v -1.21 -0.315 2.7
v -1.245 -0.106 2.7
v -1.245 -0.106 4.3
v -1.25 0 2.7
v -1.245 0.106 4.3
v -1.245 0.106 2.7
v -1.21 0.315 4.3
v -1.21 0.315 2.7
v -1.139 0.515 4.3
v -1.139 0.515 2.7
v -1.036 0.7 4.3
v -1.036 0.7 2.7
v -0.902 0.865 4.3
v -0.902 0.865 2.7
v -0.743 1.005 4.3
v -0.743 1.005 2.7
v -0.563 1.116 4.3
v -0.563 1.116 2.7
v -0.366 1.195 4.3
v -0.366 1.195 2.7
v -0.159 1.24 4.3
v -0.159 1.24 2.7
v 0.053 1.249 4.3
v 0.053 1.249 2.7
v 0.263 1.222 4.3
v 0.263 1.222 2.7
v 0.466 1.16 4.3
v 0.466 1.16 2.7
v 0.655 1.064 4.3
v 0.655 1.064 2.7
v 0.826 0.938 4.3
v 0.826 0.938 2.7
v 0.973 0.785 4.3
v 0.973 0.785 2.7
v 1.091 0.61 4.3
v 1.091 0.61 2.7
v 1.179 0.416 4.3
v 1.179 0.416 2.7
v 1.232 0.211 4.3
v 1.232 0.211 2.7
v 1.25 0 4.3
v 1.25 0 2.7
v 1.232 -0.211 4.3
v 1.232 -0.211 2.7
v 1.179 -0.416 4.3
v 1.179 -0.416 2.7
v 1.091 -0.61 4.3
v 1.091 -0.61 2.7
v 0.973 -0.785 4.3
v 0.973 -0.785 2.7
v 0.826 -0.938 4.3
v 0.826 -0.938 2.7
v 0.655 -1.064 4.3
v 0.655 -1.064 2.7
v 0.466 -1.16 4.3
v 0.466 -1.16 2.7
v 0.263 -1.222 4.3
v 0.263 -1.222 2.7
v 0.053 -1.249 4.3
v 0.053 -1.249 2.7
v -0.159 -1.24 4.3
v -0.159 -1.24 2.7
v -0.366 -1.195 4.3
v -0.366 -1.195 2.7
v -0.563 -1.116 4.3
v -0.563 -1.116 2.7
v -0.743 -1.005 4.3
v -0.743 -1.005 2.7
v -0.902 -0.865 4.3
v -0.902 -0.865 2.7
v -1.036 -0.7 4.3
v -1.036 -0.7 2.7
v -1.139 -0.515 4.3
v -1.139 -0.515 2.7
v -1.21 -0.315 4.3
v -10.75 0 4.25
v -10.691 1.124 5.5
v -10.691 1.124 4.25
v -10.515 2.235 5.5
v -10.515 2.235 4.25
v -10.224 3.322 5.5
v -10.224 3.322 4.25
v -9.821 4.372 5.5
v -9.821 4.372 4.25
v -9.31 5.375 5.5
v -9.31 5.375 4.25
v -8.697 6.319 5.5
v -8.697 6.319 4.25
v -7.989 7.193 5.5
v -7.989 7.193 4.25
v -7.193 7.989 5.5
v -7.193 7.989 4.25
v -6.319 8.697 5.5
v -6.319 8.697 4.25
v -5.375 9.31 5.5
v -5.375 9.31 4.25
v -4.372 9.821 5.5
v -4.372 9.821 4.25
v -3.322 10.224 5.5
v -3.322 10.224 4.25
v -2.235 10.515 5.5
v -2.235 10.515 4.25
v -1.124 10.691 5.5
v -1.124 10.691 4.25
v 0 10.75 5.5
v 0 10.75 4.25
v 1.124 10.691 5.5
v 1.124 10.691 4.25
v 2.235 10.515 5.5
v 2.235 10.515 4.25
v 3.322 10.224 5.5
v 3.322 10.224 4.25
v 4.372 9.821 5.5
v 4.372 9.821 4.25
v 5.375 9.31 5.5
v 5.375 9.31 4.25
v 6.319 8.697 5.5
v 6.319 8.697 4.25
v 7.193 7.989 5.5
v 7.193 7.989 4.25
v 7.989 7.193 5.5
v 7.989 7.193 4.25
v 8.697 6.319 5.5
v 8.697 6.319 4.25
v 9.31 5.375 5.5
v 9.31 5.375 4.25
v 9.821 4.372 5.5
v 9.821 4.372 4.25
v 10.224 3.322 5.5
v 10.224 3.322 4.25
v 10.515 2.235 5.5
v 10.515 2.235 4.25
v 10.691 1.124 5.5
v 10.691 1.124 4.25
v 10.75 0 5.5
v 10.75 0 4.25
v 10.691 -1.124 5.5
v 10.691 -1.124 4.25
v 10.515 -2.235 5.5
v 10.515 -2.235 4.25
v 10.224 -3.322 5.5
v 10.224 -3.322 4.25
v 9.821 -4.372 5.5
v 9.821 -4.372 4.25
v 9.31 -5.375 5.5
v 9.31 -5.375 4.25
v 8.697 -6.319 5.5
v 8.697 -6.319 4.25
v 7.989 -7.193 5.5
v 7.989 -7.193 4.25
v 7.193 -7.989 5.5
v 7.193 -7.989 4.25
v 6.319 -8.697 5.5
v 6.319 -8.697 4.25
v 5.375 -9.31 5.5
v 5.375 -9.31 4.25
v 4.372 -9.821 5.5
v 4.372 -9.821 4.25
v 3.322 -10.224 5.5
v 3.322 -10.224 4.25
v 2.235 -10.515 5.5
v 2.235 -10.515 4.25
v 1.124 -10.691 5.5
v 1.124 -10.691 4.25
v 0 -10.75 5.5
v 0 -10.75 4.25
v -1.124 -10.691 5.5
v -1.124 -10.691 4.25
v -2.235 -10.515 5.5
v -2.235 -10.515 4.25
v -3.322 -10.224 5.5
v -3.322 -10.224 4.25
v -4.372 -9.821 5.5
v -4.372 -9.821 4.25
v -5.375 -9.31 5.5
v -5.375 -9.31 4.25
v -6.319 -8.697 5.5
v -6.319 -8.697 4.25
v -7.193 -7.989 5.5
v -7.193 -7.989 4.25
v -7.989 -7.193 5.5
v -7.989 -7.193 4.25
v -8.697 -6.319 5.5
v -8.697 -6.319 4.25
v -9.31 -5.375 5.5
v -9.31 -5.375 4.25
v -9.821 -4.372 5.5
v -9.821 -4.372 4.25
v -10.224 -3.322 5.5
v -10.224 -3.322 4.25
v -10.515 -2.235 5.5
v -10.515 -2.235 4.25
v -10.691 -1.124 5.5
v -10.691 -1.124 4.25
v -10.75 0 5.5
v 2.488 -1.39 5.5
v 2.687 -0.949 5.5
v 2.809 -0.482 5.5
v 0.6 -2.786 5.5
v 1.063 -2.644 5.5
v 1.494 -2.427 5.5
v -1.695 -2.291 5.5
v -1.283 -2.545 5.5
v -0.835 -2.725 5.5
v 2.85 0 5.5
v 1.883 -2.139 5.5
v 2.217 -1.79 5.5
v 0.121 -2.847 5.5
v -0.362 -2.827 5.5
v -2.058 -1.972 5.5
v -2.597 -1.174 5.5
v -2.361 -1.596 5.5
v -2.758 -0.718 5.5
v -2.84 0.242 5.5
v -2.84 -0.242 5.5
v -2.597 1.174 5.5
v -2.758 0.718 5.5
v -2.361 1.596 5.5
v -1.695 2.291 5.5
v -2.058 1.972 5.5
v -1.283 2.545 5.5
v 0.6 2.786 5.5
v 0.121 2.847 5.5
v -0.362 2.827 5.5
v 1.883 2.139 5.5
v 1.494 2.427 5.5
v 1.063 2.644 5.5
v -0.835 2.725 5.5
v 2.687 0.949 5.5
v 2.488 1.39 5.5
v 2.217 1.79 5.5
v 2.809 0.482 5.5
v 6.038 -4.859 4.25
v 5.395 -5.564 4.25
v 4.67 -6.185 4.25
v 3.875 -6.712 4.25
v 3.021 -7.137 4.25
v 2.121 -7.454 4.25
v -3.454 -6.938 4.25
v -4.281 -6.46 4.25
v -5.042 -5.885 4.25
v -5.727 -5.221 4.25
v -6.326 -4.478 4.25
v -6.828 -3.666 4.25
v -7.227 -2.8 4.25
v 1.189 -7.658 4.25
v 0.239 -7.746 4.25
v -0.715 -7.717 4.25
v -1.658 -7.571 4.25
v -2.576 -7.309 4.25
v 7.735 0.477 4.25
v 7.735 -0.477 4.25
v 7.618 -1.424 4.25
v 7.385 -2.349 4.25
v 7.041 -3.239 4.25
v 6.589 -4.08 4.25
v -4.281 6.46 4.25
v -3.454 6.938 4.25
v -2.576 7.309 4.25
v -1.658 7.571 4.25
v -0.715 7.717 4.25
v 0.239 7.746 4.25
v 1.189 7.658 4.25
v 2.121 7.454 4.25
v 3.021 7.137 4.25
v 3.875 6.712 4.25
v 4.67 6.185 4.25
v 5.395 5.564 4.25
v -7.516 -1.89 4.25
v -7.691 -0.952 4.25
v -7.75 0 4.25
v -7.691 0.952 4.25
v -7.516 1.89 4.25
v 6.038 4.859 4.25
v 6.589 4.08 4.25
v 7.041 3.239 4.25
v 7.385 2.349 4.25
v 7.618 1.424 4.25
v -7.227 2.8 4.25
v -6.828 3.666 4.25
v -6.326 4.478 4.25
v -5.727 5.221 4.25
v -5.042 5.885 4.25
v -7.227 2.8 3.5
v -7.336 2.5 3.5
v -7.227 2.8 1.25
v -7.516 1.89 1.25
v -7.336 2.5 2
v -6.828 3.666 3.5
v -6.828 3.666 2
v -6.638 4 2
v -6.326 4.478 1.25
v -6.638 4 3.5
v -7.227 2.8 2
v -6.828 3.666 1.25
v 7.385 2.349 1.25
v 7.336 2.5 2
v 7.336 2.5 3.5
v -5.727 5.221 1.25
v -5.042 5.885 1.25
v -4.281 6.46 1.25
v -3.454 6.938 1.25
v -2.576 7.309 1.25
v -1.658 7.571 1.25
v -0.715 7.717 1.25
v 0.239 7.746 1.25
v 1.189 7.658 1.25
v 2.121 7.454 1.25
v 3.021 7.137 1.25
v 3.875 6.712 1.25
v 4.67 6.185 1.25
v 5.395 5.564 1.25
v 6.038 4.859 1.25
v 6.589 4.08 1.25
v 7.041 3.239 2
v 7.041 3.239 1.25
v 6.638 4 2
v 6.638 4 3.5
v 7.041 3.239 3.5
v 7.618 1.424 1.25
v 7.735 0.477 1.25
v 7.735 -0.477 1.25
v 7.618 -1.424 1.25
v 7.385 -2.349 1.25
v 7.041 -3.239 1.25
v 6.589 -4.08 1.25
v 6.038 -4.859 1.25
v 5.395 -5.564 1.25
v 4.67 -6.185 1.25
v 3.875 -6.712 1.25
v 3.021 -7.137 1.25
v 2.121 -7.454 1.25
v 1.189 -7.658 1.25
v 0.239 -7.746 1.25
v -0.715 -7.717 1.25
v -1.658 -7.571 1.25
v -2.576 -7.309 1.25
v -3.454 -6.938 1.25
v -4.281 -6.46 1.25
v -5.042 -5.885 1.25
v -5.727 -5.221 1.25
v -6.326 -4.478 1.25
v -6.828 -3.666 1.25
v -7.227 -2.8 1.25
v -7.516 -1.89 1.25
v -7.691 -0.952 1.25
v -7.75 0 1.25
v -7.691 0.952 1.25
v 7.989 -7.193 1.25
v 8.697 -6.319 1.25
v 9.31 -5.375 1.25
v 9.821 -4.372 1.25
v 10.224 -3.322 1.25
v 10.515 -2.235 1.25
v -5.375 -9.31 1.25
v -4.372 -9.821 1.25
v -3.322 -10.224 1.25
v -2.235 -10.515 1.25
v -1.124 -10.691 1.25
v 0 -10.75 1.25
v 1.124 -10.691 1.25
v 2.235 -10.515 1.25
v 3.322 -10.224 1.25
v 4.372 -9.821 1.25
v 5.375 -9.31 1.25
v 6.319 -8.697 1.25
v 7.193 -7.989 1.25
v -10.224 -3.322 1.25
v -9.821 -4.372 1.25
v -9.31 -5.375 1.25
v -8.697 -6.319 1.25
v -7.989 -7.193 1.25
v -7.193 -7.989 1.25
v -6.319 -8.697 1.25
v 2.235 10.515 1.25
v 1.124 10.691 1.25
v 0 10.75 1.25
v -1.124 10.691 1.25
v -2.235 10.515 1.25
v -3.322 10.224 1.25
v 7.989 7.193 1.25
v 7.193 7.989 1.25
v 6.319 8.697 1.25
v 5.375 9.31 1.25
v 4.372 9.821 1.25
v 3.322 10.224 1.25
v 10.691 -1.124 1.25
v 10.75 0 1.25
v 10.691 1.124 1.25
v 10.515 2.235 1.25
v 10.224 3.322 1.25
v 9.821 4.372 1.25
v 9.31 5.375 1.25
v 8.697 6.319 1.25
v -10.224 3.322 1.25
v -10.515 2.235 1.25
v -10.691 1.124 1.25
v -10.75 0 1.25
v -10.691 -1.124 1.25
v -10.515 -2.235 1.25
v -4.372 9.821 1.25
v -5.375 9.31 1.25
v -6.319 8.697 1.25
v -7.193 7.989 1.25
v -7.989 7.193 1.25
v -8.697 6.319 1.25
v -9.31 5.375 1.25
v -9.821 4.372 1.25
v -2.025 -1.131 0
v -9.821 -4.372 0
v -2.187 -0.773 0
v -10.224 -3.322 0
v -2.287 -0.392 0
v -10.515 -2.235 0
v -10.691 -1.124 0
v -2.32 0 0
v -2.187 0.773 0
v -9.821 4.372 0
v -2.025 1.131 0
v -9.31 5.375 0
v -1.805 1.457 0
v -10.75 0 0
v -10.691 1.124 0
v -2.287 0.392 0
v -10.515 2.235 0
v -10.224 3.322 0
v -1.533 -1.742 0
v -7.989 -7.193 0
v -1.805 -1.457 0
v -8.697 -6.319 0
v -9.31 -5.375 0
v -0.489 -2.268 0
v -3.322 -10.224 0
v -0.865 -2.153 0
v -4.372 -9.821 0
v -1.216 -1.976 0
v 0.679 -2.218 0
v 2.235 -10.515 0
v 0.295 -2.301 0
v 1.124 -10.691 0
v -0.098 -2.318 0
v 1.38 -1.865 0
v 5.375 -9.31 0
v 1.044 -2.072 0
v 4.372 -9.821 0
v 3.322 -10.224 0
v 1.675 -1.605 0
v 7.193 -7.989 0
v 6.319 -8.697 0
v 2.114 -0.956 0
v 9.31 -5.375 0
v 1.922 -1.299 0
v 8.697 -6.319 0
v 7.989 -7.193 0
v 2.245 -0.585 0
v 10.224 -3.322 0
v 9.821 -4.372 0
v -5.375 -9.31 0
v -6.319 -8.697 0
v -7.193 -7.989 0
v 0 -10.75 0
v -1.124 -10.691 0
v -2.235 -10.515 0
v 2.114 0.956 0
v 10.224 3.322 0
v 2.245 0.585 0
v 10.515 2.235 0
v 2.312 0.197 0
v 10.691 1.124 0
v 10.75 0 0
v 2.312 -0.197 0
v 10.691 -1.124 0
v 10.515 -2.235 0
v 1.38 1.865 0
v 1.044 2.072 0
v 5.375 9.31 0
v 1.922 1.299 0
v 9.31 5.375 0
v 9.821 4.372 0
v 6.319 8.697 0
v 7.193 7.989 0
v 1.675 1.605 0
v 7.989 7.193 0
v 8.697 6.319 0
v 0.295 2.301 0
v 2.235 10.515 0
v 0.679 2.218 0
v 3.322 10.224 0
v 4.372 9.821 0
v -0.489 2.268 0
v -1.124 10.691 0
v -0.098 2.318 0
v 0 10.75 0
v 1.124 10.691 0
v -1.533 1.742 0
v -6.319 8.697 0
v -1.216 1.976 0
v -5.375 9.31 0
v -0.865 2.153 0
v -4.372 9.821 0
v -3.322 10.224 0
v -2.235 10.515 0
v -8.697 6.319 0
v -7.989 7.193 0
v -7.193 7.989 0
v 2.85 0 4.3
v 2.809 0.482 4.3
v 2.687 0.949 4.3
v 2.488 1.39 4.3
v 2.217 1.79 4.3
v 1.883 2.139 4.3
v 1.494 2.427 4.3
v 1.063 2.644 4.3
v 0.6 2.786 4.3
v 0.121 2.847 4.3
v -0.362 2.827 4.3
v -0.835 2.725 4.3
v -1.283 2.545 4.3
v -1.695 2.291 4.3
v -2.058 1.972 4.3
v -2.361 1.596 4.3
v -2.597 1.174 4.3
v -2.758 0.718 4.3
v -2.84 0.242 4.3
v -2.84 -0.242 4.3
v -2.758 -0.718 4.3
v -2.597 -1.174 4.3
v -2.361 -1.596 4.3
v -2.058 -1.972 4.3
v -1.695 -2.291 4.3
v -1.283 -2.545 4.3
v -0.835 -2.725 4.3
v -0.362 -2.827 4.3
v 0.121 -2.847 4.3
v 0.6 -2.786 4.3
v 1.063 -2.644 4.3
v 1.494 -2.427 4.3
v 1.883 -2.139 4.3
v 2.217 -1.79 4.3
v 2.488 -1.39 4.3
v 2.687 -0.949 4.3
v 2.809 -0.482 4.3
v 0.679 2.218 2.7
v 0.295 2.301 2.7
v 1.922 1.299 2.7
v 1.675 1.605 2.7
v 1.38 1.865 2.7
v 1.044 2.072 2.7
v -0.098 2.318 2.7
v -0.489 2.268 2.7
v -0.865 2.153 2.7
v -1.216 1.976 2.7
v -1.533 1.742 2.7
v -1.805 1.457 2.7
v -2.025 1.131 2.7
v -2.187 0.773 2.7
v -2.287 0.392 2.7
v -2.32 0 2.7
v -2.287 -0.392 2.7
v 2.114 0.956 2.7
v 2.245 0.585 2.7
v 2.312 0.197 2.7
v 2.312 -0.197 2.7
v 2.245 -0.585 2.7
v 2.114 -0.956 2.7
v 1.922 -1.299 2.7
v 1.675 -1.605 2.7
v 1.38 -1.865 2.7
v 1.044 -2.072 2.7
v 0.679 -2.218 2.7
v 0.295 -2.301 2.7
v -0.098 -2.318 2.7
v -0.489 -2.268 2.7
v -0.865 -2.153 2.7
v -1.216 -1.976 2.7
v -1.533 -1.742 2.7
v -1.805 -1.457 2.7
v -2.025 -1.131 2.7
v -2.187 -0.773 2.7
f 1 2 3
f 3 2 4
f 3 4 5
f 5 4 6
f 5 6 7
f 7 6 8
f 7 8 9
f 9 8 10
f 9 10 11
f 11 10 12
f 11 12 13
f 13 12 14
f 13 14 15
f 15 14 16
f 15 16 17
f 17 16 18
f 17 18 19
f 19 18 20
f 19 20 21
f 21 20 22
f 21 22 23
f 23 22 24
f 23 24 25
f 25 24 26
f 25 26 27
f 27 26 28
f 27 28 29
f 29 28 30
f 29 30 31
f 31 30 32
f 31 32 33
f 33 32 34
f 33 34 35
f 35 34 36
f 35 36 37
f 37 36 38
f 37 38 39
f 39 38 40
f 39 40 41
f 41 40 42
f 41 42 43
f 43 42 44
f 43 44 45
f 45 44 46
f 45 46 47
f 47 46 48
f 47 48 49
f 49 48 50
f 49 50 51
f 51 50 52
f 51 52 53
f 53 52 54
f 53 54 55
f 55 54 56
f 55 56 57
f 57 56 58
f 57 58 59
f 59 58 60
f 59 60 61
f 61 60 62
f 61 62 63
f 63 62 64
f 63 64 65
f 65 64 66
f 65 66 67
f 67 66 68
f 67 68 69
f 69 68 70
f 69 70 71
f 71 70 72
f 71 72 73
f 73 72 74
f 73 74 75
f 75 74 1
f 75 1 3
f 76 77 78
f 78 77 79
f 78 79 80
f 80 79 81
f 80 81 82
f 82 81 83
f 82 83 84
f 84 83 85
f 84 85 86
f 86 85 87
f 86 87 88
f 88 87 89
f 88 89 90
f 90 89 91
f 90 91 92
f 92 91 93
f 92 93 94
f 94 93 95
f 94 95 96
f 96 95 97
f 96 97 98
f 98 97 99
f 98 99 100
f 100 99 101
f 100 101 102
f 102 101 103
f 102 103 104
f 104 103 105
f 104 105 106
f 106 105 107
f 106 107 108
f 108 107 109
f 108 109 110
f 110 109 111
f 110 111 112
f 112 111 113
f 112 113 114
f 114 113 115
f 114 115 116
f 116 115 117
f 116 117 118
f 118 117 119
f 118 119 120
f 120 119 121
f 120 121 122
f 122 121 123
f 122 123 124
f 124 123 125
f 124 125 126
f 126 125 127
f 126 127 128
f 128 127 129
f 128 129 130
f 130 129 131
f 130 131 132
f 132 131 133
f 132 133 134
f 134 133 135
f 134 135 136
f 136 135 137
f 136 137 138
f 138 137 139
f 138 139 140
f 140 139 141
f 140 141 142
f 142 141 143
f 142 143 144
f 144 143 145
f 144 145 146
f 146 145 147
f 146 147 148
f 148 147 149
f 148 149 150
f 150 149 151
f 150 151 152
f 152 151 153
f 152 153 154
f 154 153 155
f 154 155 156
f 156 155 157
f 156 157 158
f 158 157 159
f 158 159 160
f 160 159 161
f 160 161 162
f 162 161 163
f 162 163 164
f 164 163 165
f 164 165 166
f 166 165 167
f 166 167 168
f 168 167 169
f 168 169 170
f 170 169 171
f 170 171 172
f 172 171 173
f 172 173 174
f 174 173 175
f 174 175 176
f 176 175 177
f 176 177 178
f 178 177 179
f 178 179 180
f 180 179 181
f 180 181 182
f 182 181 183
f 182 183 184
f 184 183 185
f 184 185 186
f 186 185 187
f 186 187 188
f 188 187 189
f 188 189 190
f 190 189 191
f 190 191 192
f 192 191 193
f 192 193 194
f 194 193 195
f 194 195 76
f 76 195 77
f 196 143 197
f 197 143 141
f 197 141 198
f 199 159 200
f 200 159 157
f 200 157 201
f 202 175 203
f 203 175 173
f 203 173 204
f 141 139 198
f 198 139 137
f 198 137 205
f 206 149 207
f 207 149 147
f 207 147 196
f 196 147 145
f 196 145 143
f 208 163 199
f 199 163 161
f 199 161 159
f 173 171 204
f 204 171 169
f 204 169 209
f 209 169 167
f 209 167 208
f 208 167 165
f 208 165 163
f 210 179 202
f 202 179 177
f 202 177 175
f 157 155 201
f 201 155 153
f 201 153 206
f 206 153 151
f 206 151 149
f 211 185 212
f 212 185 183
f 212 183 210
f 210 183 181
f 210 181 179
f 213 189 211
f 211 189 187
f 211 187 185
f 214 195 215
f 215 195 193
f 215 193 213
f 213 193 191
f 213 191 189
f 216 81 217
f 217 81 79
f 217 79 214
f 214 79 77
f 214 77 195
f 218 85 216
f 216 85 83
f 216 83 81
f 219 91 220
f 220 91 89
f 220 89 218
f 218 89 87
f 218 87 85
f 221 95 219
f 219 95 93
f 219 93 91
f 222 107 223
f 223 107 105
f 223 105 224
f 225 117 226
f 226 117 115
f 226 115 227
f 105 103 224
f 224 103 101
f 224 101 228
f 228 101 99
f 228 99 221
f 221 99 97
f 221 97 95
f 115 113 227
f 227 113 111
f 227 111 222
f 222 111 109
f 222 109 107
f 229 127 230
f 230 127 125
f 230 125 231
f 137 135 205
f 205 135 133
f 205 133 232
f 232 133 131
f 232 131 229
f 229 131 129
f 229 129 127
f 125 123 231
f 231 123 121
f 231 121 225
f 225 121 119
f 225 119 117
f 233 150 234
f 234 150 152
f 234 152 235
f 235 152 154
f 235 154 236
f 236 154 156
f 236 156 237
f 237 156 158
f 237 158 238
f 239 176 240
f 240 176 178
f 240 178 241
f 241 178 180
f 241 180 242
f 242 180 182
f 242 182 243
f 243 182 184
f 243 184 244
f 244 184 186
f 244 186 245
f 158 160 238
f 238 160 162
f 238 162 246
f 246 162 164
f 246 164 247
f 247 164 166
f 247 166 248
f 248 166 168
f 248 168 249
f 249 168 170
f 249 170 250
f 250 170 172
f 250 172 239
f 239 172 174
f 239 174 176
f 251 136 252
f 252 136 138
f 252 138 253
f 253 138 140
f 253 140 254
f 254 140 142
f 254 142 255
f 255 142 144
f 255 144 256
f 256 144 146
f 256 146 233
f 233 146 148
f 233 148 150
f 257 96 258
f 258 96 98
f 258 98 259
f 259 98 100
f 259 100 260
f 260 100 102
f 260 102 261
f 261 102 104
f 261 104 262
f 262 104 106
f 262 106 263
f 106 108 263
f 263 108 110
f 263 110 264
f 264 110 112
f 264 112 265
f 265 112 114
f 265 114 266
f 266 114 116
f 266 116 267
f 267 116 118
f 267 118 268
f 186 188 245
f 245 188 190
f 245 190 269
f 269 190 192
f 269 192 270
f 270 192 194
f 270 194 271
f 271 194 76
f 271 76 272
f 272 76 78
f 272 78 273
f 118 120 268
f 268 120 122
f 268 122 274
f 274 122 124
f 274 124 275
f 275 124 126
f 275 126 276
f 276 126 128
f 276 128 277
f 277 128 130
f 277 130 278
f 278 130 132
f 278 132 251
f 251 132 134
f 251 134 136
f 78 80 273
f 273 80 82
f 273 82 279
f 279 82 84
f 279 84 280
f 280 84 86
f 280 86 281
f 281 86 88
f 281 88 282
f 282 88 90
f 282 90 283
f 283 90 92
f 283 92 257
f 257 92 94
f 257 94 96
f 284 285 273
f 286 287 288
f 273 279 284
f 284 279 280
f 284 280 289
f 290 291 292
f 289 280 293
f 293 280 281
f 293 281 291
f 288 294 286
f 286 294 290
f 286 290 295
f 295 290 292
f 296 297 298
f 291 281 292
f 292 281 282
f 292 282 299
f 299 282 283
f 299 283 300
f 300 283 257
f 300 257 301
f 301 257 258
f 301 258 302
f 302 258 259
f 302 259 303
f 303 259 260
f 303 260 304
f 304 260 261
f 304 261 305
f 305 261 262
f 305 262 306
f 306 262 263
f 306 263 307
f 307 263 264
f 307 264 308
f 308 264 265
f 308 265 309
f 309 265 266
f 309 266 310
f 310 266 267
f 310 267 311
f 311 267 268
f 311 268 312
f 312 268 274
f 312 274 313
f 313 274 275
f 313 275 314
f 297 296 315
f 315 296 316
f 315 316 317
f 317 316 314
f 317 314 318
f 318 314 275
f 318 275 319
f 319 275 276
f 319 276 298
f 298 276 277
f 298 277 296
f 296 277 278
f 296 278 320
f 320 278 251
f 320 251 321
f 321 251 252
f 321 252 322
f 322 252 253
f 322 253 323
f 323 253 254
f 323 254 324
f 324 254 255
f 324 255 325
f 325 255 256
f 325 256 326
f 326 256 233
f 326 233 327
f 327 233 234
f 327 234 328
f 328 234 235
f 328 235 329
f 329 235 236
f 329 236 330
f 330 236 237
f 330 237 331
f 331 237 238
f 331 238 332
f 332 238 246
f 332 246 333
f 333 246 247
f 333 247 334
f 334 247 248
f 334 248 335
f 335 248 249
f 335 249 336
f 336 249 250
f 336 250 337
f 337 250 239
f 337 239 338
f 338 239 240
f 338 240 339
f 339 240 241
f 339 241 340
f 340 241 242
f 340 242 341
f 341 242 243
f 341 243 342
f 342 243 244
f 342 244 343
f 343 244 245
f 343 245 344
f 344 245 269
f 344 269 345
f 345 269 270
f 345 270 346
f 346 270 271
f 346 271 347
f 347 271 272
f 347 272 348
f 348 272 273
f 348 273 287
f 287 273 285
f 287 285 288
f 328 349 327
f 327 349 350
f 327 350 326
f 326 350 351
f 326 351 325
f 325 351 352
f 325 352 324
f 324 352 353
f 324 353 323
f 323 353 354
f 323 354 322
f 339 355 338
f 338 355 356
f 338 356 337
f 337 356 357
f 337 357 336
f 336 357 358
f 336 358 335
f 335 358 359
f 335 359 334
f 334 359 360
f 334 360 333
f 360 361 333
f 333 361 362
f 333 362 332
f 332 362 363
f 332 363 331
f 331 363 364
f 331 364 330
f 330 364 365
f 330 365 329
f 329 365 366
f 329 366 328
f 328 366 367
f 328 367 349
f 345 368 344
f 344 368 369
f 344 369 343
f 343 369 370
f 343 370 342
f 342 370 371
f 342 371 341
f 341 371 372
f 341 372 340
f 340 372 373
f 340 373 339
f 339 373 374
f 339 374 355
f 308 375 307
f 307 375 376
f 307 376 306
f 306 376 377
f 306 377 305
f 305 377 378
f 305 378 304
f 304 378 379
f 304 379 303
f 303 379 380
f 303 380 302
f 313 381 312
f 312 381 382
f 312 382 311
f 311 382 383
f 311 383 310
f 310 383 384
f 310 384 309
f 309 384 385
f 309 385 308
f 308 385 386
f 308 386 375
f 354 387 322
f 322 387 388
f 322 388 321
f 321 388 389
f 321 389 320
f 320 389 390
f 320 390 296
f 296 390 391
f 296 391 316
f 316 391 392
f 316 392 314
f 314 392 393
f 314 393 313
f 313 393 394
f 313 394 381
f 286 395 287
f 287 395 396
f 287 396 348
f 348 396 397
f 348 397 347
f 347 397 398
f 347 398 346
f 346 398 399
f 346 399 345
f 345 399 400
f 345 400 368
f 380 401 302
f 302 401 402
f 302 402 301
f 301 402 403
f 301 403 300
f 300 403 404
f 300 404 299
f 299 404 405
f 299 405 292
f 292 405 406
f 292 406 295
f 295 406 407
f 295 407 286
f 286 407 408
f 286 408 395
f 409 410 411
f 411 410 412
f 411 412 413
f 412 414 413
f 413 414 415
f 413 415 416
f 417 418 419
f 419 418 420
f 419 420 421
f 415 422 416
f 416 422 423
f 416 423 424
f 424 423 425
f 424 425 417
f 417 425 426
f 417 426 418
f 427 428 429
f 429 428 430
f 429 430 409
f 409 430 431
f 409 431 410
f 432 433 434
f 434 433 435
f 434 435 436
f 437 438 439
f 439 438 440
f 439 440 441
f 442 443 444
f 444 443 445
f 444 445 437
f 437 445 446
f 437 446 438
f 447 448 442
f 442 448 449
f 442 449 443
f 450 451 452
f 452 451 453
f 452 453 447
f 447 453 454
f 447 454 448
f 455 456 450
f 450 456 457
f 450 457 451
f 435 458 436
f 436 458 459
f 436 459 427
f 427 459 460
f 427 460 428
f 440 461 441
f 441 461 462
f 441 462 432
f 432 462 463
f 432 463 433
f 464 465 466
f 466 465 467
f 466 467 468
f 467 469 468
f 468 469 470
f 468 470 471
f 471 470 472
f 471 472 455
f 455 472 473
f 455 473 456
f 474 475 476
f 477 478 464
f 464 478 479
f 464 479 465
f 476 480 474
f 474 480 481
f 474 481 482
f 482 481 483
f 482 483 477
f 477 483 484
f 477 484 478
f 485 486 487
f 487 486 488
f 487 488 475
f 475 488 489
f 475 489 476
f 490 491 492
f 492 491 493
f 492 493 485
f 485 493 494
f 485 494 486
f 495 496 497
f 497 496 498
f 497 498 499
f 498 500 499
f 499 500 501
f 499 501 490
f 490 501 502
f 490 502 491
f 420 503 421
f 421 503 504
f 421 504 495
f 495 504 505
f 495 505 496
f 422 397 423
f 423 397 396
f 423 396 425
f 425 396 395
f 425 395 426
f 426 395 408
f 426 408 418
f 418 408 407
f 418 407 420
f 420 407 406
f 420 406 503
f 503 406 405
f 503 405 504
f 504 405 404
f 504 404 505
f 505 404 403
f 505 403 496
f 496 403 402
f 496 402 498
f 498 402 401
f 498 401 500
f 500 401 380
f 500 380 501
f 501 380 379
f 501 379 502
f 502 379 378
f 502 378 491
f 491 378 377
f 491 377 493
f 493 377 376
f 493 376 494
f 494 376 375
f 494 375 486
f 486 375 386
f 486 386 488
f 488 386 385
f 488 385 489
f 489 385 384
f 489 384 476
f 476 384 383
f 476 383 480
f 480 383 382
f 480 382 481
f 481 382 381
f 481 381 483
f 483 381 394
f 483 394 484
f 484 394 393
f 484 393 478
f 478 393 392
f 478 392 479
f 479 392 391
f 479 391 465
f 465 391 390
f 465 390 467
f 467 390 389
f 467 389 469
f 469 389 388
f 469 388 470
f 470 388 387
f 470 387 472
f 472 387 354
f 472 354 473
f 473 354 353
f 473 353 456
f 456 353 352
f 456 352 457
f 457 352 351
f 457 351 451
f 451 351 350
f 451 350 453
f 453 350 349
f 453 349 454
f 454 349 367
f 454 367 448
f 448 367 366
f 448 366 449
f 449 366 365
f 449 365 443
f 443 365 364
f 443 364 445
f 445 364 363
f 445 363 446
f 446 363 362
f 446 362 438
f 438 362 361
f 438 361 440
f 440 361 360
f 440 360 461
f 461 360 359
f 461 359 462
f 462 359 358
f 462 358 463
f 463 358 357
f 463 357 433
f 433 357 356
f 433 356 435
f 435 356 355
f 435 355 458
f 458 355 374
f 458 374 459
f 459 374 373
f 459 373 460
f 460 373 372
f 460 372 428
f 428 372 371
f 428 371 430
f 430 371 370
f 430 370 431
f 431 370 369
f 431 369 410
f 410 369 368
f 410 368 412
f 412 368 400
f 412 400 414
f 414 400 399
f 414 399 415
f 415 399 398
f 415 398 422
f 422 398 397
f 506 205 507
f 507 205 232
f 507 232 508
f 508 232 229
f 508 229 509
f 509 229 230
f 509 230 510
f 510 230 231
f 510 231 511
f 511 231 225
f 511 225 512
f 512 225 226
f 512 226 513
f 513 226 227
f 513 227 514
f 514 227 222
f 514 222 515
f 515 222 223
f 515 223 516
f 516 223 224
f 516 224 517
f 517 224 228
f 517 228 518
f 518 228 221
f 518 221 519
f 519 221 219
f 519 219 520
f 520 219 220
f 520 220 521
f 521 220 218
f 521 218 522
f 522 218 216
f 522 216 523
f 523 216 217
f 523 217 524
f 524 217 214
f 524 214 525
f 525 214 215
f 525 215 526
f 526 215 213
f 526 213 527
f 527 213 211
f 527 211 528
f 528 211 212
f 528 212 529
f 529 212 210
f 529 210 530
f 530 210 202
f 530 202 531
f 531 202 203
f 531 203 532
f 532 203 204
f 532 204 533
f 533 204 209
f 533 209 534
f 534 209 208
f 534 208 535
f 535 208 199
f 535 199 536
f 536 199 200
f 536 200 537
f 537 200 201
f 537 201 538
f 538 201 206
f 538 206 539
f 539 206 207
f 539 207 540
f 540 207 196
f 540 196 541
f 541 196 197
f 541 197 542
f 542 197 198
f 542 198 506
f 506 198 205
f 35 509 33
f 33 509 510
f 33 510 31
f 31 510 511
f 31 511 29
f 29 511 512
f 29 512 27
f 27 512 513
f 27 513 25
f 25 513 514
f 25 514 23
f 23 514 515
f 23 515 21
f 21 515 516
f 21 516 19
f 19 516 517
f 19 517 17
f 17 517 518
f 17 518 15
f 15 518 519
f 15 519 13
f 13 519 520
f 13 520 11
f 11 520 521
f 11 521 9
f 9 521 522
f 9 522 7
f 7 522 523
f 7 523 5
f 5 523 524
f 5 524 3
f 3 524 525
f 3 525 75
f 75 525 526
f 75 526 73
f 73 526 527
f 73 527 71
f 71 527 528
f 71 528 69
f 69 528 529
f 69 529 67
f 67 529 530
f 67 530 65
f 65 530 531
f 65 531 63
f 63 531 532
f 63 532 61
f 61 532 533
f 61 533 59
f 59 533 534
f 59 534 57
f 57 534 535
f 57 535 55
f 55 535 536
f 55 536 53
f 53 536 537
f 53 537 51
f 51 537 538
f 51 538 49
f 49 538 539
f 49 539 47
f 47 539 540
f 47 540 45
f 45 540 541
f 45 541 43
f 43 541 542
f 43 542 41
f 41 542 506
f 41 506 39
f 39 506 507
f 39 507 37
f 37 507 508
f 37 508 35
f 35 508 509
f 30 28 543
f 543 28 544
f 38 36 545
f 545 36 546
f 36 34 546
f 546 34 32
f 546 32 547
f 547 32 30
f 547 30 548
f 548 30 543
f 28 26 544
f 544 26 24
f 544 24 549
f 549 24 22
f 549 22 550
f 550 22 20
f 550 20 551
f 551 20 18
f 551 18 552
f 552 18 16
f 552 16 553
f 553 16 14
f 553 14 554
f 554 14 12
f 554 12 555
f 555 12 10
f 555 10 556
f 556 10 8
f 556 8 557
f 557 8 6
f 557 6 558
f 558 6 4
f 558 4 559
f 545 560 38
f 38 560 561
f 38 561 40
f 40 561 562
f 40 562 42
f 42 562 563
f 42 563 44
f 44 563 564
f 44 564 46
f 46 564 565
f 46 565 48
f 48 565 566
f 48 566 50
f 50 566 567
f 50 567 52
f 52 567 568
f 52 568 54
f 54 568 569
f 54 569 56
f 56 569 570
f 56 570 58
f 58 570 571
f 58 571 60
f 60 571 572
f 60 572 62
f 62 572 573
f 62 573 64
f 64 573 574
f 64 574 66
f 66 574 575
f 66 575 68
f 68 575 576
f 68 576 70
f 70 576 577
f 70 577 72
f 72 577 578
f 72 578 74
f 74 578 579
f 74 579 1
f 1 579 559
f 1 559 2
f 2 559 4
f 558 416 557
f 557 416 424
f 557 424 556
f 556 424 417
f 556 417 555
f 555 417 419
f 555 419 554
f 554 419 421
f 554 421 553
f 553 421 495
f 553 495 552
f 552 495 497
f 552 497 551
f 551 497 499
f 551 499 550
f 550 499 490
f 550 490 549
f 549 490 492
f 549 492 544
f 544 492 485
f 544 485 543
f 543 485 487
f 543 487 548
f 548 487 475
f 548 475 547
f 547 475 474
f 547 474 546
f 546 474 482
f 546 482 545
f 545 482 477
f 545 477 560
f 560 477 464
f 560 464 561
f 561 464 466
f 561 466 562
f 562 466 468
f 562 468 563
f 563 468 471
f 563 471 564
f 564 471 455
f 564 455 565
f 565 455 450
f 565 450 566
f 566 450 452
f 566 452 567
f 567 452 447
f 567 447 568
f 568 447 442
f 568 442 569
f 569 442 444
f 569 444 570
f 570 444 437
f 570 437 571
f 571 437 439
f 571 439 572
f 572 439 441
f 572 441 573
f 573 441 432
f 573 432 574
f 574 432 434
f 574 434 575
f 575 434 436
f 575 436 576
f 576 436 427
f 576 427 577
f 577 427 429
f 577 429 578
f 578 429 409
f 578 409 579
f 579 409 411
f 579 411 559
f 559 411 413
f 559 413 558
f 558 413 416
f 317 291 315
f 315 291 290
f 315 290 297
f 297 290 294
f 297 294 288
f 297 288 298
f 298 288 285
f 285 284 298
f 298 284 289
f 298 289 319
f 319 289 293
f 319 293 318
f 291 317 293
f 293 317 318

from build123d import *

# Parameters (mm, degrees)
CROQUIS1_R                 = 10.75
SALIENTE_EXTRUIR1_DEPTH    = 5.5
CROQUIS3_R                 = 2.85
CORTAR_EXTRUIR1_DEPTH      = 1.2
CROQUIS4_R                 = 1.25
CORTAR_EXTRUIR2_DEPTH      = 17.167096214
CROQUIS5_R                 = 2.32
CORTAR_EXTRUIR3_DEPTH      = 2.7
CORTAR_EXTRUIR4_DEPTH      = 17.167096214
CORTAR_EXTRUIR4_DEPTH_BACK = 17.167096214
CROQUIS6_W                 = 1.5
CROQUIS6_H                 = 1.5


with BuildPart() as part:
    # Croquis1 → Saliente-Extruir1 (new body)
    with BuildSketch(Plane.XY):
        Circle(CROQUIS1_R)
    extrude(amount=SALIENTE_EXTRUIR1_DEPTH)

    # Croquis2 → Cortar-Revolución1 (revolve, cut)
    with BuildSketch(Plane(origin=(0, 0, 0), x_dir=(0, 0, -1), z_dir=(1, 0, 0)), mode=Mode.PRIVATE) as cortar_revoluci_n1_sk:
        Polygon((-5.5, 10.75), (-4.25, 10.75), (-4.25, 7.75), (-1.25, 7.75), (-1.25, 10.75), (0, 10.75), (0, 13.530555933), (-5.5, 13.530555933), align=None)
    revolve(cortar_revoluci_n1_sk.sketch.rotate(Axis((0, 0, 0), (0, 0, 1)), 90), axis=Axis((0, 0, 0), (0, 0, 1)), mode=Mode.SUBTRACT)

    # Croquis3 → Cortar-Extruir1 (cut)
    with BuildSketch(Plane.XY.offset(5.5)):
        Circle(CROQUIS3_R)
    extrude(amount=-CORTAR_EXTRUIR1_DEPTH, mode=Mode.SUBTRACT)

    # Croquis4 → Cortar-Extruir2 (cut, through all)
    with BuildSketch(Plane.XY.offset(5.5)):
        Circle(CROQUIS4_R)
    extrude(amount=-CORTAR_EXTRUIR2_DEPTH, mode=Mode.SUBTRACT)

    # Croquis5 → Cortar-Extruir3 (cut)
    with BuildSketch(Plane(origin=(0, 0, 0), x_dir=(-1, 0, 0), z_dir=(0, 0, -1))):
        Circle(CROQUIS5_R)
    extrude(amount=-CORTAR_EXTRUIR3_DEPTH, mode=Mode.SUBTRACT)

    # Croquis6 → Cortar-Extruir4 (cut, two sides: drawn at the far end of the back side and taken through both)
    with BuildSketch(Plane(origin=(0, 0, 0), x_dir=(0, 0, -1), z_dir=(1, 0, 0)).offset(-CORTAR_EXTRUIR4_DEPTH_BACK)):
        with Locations((-2.75, 3.25)):
            Rectangle(CROQUIS6_W, CROQUIS6_H)
    extrude(amount=CORTAR_EXTRUIR4_DEPTH + CORTAR_EXTRUIR4_DEPTH_BACK, mode=Mode.SUBTRACT)


solid = part.part
